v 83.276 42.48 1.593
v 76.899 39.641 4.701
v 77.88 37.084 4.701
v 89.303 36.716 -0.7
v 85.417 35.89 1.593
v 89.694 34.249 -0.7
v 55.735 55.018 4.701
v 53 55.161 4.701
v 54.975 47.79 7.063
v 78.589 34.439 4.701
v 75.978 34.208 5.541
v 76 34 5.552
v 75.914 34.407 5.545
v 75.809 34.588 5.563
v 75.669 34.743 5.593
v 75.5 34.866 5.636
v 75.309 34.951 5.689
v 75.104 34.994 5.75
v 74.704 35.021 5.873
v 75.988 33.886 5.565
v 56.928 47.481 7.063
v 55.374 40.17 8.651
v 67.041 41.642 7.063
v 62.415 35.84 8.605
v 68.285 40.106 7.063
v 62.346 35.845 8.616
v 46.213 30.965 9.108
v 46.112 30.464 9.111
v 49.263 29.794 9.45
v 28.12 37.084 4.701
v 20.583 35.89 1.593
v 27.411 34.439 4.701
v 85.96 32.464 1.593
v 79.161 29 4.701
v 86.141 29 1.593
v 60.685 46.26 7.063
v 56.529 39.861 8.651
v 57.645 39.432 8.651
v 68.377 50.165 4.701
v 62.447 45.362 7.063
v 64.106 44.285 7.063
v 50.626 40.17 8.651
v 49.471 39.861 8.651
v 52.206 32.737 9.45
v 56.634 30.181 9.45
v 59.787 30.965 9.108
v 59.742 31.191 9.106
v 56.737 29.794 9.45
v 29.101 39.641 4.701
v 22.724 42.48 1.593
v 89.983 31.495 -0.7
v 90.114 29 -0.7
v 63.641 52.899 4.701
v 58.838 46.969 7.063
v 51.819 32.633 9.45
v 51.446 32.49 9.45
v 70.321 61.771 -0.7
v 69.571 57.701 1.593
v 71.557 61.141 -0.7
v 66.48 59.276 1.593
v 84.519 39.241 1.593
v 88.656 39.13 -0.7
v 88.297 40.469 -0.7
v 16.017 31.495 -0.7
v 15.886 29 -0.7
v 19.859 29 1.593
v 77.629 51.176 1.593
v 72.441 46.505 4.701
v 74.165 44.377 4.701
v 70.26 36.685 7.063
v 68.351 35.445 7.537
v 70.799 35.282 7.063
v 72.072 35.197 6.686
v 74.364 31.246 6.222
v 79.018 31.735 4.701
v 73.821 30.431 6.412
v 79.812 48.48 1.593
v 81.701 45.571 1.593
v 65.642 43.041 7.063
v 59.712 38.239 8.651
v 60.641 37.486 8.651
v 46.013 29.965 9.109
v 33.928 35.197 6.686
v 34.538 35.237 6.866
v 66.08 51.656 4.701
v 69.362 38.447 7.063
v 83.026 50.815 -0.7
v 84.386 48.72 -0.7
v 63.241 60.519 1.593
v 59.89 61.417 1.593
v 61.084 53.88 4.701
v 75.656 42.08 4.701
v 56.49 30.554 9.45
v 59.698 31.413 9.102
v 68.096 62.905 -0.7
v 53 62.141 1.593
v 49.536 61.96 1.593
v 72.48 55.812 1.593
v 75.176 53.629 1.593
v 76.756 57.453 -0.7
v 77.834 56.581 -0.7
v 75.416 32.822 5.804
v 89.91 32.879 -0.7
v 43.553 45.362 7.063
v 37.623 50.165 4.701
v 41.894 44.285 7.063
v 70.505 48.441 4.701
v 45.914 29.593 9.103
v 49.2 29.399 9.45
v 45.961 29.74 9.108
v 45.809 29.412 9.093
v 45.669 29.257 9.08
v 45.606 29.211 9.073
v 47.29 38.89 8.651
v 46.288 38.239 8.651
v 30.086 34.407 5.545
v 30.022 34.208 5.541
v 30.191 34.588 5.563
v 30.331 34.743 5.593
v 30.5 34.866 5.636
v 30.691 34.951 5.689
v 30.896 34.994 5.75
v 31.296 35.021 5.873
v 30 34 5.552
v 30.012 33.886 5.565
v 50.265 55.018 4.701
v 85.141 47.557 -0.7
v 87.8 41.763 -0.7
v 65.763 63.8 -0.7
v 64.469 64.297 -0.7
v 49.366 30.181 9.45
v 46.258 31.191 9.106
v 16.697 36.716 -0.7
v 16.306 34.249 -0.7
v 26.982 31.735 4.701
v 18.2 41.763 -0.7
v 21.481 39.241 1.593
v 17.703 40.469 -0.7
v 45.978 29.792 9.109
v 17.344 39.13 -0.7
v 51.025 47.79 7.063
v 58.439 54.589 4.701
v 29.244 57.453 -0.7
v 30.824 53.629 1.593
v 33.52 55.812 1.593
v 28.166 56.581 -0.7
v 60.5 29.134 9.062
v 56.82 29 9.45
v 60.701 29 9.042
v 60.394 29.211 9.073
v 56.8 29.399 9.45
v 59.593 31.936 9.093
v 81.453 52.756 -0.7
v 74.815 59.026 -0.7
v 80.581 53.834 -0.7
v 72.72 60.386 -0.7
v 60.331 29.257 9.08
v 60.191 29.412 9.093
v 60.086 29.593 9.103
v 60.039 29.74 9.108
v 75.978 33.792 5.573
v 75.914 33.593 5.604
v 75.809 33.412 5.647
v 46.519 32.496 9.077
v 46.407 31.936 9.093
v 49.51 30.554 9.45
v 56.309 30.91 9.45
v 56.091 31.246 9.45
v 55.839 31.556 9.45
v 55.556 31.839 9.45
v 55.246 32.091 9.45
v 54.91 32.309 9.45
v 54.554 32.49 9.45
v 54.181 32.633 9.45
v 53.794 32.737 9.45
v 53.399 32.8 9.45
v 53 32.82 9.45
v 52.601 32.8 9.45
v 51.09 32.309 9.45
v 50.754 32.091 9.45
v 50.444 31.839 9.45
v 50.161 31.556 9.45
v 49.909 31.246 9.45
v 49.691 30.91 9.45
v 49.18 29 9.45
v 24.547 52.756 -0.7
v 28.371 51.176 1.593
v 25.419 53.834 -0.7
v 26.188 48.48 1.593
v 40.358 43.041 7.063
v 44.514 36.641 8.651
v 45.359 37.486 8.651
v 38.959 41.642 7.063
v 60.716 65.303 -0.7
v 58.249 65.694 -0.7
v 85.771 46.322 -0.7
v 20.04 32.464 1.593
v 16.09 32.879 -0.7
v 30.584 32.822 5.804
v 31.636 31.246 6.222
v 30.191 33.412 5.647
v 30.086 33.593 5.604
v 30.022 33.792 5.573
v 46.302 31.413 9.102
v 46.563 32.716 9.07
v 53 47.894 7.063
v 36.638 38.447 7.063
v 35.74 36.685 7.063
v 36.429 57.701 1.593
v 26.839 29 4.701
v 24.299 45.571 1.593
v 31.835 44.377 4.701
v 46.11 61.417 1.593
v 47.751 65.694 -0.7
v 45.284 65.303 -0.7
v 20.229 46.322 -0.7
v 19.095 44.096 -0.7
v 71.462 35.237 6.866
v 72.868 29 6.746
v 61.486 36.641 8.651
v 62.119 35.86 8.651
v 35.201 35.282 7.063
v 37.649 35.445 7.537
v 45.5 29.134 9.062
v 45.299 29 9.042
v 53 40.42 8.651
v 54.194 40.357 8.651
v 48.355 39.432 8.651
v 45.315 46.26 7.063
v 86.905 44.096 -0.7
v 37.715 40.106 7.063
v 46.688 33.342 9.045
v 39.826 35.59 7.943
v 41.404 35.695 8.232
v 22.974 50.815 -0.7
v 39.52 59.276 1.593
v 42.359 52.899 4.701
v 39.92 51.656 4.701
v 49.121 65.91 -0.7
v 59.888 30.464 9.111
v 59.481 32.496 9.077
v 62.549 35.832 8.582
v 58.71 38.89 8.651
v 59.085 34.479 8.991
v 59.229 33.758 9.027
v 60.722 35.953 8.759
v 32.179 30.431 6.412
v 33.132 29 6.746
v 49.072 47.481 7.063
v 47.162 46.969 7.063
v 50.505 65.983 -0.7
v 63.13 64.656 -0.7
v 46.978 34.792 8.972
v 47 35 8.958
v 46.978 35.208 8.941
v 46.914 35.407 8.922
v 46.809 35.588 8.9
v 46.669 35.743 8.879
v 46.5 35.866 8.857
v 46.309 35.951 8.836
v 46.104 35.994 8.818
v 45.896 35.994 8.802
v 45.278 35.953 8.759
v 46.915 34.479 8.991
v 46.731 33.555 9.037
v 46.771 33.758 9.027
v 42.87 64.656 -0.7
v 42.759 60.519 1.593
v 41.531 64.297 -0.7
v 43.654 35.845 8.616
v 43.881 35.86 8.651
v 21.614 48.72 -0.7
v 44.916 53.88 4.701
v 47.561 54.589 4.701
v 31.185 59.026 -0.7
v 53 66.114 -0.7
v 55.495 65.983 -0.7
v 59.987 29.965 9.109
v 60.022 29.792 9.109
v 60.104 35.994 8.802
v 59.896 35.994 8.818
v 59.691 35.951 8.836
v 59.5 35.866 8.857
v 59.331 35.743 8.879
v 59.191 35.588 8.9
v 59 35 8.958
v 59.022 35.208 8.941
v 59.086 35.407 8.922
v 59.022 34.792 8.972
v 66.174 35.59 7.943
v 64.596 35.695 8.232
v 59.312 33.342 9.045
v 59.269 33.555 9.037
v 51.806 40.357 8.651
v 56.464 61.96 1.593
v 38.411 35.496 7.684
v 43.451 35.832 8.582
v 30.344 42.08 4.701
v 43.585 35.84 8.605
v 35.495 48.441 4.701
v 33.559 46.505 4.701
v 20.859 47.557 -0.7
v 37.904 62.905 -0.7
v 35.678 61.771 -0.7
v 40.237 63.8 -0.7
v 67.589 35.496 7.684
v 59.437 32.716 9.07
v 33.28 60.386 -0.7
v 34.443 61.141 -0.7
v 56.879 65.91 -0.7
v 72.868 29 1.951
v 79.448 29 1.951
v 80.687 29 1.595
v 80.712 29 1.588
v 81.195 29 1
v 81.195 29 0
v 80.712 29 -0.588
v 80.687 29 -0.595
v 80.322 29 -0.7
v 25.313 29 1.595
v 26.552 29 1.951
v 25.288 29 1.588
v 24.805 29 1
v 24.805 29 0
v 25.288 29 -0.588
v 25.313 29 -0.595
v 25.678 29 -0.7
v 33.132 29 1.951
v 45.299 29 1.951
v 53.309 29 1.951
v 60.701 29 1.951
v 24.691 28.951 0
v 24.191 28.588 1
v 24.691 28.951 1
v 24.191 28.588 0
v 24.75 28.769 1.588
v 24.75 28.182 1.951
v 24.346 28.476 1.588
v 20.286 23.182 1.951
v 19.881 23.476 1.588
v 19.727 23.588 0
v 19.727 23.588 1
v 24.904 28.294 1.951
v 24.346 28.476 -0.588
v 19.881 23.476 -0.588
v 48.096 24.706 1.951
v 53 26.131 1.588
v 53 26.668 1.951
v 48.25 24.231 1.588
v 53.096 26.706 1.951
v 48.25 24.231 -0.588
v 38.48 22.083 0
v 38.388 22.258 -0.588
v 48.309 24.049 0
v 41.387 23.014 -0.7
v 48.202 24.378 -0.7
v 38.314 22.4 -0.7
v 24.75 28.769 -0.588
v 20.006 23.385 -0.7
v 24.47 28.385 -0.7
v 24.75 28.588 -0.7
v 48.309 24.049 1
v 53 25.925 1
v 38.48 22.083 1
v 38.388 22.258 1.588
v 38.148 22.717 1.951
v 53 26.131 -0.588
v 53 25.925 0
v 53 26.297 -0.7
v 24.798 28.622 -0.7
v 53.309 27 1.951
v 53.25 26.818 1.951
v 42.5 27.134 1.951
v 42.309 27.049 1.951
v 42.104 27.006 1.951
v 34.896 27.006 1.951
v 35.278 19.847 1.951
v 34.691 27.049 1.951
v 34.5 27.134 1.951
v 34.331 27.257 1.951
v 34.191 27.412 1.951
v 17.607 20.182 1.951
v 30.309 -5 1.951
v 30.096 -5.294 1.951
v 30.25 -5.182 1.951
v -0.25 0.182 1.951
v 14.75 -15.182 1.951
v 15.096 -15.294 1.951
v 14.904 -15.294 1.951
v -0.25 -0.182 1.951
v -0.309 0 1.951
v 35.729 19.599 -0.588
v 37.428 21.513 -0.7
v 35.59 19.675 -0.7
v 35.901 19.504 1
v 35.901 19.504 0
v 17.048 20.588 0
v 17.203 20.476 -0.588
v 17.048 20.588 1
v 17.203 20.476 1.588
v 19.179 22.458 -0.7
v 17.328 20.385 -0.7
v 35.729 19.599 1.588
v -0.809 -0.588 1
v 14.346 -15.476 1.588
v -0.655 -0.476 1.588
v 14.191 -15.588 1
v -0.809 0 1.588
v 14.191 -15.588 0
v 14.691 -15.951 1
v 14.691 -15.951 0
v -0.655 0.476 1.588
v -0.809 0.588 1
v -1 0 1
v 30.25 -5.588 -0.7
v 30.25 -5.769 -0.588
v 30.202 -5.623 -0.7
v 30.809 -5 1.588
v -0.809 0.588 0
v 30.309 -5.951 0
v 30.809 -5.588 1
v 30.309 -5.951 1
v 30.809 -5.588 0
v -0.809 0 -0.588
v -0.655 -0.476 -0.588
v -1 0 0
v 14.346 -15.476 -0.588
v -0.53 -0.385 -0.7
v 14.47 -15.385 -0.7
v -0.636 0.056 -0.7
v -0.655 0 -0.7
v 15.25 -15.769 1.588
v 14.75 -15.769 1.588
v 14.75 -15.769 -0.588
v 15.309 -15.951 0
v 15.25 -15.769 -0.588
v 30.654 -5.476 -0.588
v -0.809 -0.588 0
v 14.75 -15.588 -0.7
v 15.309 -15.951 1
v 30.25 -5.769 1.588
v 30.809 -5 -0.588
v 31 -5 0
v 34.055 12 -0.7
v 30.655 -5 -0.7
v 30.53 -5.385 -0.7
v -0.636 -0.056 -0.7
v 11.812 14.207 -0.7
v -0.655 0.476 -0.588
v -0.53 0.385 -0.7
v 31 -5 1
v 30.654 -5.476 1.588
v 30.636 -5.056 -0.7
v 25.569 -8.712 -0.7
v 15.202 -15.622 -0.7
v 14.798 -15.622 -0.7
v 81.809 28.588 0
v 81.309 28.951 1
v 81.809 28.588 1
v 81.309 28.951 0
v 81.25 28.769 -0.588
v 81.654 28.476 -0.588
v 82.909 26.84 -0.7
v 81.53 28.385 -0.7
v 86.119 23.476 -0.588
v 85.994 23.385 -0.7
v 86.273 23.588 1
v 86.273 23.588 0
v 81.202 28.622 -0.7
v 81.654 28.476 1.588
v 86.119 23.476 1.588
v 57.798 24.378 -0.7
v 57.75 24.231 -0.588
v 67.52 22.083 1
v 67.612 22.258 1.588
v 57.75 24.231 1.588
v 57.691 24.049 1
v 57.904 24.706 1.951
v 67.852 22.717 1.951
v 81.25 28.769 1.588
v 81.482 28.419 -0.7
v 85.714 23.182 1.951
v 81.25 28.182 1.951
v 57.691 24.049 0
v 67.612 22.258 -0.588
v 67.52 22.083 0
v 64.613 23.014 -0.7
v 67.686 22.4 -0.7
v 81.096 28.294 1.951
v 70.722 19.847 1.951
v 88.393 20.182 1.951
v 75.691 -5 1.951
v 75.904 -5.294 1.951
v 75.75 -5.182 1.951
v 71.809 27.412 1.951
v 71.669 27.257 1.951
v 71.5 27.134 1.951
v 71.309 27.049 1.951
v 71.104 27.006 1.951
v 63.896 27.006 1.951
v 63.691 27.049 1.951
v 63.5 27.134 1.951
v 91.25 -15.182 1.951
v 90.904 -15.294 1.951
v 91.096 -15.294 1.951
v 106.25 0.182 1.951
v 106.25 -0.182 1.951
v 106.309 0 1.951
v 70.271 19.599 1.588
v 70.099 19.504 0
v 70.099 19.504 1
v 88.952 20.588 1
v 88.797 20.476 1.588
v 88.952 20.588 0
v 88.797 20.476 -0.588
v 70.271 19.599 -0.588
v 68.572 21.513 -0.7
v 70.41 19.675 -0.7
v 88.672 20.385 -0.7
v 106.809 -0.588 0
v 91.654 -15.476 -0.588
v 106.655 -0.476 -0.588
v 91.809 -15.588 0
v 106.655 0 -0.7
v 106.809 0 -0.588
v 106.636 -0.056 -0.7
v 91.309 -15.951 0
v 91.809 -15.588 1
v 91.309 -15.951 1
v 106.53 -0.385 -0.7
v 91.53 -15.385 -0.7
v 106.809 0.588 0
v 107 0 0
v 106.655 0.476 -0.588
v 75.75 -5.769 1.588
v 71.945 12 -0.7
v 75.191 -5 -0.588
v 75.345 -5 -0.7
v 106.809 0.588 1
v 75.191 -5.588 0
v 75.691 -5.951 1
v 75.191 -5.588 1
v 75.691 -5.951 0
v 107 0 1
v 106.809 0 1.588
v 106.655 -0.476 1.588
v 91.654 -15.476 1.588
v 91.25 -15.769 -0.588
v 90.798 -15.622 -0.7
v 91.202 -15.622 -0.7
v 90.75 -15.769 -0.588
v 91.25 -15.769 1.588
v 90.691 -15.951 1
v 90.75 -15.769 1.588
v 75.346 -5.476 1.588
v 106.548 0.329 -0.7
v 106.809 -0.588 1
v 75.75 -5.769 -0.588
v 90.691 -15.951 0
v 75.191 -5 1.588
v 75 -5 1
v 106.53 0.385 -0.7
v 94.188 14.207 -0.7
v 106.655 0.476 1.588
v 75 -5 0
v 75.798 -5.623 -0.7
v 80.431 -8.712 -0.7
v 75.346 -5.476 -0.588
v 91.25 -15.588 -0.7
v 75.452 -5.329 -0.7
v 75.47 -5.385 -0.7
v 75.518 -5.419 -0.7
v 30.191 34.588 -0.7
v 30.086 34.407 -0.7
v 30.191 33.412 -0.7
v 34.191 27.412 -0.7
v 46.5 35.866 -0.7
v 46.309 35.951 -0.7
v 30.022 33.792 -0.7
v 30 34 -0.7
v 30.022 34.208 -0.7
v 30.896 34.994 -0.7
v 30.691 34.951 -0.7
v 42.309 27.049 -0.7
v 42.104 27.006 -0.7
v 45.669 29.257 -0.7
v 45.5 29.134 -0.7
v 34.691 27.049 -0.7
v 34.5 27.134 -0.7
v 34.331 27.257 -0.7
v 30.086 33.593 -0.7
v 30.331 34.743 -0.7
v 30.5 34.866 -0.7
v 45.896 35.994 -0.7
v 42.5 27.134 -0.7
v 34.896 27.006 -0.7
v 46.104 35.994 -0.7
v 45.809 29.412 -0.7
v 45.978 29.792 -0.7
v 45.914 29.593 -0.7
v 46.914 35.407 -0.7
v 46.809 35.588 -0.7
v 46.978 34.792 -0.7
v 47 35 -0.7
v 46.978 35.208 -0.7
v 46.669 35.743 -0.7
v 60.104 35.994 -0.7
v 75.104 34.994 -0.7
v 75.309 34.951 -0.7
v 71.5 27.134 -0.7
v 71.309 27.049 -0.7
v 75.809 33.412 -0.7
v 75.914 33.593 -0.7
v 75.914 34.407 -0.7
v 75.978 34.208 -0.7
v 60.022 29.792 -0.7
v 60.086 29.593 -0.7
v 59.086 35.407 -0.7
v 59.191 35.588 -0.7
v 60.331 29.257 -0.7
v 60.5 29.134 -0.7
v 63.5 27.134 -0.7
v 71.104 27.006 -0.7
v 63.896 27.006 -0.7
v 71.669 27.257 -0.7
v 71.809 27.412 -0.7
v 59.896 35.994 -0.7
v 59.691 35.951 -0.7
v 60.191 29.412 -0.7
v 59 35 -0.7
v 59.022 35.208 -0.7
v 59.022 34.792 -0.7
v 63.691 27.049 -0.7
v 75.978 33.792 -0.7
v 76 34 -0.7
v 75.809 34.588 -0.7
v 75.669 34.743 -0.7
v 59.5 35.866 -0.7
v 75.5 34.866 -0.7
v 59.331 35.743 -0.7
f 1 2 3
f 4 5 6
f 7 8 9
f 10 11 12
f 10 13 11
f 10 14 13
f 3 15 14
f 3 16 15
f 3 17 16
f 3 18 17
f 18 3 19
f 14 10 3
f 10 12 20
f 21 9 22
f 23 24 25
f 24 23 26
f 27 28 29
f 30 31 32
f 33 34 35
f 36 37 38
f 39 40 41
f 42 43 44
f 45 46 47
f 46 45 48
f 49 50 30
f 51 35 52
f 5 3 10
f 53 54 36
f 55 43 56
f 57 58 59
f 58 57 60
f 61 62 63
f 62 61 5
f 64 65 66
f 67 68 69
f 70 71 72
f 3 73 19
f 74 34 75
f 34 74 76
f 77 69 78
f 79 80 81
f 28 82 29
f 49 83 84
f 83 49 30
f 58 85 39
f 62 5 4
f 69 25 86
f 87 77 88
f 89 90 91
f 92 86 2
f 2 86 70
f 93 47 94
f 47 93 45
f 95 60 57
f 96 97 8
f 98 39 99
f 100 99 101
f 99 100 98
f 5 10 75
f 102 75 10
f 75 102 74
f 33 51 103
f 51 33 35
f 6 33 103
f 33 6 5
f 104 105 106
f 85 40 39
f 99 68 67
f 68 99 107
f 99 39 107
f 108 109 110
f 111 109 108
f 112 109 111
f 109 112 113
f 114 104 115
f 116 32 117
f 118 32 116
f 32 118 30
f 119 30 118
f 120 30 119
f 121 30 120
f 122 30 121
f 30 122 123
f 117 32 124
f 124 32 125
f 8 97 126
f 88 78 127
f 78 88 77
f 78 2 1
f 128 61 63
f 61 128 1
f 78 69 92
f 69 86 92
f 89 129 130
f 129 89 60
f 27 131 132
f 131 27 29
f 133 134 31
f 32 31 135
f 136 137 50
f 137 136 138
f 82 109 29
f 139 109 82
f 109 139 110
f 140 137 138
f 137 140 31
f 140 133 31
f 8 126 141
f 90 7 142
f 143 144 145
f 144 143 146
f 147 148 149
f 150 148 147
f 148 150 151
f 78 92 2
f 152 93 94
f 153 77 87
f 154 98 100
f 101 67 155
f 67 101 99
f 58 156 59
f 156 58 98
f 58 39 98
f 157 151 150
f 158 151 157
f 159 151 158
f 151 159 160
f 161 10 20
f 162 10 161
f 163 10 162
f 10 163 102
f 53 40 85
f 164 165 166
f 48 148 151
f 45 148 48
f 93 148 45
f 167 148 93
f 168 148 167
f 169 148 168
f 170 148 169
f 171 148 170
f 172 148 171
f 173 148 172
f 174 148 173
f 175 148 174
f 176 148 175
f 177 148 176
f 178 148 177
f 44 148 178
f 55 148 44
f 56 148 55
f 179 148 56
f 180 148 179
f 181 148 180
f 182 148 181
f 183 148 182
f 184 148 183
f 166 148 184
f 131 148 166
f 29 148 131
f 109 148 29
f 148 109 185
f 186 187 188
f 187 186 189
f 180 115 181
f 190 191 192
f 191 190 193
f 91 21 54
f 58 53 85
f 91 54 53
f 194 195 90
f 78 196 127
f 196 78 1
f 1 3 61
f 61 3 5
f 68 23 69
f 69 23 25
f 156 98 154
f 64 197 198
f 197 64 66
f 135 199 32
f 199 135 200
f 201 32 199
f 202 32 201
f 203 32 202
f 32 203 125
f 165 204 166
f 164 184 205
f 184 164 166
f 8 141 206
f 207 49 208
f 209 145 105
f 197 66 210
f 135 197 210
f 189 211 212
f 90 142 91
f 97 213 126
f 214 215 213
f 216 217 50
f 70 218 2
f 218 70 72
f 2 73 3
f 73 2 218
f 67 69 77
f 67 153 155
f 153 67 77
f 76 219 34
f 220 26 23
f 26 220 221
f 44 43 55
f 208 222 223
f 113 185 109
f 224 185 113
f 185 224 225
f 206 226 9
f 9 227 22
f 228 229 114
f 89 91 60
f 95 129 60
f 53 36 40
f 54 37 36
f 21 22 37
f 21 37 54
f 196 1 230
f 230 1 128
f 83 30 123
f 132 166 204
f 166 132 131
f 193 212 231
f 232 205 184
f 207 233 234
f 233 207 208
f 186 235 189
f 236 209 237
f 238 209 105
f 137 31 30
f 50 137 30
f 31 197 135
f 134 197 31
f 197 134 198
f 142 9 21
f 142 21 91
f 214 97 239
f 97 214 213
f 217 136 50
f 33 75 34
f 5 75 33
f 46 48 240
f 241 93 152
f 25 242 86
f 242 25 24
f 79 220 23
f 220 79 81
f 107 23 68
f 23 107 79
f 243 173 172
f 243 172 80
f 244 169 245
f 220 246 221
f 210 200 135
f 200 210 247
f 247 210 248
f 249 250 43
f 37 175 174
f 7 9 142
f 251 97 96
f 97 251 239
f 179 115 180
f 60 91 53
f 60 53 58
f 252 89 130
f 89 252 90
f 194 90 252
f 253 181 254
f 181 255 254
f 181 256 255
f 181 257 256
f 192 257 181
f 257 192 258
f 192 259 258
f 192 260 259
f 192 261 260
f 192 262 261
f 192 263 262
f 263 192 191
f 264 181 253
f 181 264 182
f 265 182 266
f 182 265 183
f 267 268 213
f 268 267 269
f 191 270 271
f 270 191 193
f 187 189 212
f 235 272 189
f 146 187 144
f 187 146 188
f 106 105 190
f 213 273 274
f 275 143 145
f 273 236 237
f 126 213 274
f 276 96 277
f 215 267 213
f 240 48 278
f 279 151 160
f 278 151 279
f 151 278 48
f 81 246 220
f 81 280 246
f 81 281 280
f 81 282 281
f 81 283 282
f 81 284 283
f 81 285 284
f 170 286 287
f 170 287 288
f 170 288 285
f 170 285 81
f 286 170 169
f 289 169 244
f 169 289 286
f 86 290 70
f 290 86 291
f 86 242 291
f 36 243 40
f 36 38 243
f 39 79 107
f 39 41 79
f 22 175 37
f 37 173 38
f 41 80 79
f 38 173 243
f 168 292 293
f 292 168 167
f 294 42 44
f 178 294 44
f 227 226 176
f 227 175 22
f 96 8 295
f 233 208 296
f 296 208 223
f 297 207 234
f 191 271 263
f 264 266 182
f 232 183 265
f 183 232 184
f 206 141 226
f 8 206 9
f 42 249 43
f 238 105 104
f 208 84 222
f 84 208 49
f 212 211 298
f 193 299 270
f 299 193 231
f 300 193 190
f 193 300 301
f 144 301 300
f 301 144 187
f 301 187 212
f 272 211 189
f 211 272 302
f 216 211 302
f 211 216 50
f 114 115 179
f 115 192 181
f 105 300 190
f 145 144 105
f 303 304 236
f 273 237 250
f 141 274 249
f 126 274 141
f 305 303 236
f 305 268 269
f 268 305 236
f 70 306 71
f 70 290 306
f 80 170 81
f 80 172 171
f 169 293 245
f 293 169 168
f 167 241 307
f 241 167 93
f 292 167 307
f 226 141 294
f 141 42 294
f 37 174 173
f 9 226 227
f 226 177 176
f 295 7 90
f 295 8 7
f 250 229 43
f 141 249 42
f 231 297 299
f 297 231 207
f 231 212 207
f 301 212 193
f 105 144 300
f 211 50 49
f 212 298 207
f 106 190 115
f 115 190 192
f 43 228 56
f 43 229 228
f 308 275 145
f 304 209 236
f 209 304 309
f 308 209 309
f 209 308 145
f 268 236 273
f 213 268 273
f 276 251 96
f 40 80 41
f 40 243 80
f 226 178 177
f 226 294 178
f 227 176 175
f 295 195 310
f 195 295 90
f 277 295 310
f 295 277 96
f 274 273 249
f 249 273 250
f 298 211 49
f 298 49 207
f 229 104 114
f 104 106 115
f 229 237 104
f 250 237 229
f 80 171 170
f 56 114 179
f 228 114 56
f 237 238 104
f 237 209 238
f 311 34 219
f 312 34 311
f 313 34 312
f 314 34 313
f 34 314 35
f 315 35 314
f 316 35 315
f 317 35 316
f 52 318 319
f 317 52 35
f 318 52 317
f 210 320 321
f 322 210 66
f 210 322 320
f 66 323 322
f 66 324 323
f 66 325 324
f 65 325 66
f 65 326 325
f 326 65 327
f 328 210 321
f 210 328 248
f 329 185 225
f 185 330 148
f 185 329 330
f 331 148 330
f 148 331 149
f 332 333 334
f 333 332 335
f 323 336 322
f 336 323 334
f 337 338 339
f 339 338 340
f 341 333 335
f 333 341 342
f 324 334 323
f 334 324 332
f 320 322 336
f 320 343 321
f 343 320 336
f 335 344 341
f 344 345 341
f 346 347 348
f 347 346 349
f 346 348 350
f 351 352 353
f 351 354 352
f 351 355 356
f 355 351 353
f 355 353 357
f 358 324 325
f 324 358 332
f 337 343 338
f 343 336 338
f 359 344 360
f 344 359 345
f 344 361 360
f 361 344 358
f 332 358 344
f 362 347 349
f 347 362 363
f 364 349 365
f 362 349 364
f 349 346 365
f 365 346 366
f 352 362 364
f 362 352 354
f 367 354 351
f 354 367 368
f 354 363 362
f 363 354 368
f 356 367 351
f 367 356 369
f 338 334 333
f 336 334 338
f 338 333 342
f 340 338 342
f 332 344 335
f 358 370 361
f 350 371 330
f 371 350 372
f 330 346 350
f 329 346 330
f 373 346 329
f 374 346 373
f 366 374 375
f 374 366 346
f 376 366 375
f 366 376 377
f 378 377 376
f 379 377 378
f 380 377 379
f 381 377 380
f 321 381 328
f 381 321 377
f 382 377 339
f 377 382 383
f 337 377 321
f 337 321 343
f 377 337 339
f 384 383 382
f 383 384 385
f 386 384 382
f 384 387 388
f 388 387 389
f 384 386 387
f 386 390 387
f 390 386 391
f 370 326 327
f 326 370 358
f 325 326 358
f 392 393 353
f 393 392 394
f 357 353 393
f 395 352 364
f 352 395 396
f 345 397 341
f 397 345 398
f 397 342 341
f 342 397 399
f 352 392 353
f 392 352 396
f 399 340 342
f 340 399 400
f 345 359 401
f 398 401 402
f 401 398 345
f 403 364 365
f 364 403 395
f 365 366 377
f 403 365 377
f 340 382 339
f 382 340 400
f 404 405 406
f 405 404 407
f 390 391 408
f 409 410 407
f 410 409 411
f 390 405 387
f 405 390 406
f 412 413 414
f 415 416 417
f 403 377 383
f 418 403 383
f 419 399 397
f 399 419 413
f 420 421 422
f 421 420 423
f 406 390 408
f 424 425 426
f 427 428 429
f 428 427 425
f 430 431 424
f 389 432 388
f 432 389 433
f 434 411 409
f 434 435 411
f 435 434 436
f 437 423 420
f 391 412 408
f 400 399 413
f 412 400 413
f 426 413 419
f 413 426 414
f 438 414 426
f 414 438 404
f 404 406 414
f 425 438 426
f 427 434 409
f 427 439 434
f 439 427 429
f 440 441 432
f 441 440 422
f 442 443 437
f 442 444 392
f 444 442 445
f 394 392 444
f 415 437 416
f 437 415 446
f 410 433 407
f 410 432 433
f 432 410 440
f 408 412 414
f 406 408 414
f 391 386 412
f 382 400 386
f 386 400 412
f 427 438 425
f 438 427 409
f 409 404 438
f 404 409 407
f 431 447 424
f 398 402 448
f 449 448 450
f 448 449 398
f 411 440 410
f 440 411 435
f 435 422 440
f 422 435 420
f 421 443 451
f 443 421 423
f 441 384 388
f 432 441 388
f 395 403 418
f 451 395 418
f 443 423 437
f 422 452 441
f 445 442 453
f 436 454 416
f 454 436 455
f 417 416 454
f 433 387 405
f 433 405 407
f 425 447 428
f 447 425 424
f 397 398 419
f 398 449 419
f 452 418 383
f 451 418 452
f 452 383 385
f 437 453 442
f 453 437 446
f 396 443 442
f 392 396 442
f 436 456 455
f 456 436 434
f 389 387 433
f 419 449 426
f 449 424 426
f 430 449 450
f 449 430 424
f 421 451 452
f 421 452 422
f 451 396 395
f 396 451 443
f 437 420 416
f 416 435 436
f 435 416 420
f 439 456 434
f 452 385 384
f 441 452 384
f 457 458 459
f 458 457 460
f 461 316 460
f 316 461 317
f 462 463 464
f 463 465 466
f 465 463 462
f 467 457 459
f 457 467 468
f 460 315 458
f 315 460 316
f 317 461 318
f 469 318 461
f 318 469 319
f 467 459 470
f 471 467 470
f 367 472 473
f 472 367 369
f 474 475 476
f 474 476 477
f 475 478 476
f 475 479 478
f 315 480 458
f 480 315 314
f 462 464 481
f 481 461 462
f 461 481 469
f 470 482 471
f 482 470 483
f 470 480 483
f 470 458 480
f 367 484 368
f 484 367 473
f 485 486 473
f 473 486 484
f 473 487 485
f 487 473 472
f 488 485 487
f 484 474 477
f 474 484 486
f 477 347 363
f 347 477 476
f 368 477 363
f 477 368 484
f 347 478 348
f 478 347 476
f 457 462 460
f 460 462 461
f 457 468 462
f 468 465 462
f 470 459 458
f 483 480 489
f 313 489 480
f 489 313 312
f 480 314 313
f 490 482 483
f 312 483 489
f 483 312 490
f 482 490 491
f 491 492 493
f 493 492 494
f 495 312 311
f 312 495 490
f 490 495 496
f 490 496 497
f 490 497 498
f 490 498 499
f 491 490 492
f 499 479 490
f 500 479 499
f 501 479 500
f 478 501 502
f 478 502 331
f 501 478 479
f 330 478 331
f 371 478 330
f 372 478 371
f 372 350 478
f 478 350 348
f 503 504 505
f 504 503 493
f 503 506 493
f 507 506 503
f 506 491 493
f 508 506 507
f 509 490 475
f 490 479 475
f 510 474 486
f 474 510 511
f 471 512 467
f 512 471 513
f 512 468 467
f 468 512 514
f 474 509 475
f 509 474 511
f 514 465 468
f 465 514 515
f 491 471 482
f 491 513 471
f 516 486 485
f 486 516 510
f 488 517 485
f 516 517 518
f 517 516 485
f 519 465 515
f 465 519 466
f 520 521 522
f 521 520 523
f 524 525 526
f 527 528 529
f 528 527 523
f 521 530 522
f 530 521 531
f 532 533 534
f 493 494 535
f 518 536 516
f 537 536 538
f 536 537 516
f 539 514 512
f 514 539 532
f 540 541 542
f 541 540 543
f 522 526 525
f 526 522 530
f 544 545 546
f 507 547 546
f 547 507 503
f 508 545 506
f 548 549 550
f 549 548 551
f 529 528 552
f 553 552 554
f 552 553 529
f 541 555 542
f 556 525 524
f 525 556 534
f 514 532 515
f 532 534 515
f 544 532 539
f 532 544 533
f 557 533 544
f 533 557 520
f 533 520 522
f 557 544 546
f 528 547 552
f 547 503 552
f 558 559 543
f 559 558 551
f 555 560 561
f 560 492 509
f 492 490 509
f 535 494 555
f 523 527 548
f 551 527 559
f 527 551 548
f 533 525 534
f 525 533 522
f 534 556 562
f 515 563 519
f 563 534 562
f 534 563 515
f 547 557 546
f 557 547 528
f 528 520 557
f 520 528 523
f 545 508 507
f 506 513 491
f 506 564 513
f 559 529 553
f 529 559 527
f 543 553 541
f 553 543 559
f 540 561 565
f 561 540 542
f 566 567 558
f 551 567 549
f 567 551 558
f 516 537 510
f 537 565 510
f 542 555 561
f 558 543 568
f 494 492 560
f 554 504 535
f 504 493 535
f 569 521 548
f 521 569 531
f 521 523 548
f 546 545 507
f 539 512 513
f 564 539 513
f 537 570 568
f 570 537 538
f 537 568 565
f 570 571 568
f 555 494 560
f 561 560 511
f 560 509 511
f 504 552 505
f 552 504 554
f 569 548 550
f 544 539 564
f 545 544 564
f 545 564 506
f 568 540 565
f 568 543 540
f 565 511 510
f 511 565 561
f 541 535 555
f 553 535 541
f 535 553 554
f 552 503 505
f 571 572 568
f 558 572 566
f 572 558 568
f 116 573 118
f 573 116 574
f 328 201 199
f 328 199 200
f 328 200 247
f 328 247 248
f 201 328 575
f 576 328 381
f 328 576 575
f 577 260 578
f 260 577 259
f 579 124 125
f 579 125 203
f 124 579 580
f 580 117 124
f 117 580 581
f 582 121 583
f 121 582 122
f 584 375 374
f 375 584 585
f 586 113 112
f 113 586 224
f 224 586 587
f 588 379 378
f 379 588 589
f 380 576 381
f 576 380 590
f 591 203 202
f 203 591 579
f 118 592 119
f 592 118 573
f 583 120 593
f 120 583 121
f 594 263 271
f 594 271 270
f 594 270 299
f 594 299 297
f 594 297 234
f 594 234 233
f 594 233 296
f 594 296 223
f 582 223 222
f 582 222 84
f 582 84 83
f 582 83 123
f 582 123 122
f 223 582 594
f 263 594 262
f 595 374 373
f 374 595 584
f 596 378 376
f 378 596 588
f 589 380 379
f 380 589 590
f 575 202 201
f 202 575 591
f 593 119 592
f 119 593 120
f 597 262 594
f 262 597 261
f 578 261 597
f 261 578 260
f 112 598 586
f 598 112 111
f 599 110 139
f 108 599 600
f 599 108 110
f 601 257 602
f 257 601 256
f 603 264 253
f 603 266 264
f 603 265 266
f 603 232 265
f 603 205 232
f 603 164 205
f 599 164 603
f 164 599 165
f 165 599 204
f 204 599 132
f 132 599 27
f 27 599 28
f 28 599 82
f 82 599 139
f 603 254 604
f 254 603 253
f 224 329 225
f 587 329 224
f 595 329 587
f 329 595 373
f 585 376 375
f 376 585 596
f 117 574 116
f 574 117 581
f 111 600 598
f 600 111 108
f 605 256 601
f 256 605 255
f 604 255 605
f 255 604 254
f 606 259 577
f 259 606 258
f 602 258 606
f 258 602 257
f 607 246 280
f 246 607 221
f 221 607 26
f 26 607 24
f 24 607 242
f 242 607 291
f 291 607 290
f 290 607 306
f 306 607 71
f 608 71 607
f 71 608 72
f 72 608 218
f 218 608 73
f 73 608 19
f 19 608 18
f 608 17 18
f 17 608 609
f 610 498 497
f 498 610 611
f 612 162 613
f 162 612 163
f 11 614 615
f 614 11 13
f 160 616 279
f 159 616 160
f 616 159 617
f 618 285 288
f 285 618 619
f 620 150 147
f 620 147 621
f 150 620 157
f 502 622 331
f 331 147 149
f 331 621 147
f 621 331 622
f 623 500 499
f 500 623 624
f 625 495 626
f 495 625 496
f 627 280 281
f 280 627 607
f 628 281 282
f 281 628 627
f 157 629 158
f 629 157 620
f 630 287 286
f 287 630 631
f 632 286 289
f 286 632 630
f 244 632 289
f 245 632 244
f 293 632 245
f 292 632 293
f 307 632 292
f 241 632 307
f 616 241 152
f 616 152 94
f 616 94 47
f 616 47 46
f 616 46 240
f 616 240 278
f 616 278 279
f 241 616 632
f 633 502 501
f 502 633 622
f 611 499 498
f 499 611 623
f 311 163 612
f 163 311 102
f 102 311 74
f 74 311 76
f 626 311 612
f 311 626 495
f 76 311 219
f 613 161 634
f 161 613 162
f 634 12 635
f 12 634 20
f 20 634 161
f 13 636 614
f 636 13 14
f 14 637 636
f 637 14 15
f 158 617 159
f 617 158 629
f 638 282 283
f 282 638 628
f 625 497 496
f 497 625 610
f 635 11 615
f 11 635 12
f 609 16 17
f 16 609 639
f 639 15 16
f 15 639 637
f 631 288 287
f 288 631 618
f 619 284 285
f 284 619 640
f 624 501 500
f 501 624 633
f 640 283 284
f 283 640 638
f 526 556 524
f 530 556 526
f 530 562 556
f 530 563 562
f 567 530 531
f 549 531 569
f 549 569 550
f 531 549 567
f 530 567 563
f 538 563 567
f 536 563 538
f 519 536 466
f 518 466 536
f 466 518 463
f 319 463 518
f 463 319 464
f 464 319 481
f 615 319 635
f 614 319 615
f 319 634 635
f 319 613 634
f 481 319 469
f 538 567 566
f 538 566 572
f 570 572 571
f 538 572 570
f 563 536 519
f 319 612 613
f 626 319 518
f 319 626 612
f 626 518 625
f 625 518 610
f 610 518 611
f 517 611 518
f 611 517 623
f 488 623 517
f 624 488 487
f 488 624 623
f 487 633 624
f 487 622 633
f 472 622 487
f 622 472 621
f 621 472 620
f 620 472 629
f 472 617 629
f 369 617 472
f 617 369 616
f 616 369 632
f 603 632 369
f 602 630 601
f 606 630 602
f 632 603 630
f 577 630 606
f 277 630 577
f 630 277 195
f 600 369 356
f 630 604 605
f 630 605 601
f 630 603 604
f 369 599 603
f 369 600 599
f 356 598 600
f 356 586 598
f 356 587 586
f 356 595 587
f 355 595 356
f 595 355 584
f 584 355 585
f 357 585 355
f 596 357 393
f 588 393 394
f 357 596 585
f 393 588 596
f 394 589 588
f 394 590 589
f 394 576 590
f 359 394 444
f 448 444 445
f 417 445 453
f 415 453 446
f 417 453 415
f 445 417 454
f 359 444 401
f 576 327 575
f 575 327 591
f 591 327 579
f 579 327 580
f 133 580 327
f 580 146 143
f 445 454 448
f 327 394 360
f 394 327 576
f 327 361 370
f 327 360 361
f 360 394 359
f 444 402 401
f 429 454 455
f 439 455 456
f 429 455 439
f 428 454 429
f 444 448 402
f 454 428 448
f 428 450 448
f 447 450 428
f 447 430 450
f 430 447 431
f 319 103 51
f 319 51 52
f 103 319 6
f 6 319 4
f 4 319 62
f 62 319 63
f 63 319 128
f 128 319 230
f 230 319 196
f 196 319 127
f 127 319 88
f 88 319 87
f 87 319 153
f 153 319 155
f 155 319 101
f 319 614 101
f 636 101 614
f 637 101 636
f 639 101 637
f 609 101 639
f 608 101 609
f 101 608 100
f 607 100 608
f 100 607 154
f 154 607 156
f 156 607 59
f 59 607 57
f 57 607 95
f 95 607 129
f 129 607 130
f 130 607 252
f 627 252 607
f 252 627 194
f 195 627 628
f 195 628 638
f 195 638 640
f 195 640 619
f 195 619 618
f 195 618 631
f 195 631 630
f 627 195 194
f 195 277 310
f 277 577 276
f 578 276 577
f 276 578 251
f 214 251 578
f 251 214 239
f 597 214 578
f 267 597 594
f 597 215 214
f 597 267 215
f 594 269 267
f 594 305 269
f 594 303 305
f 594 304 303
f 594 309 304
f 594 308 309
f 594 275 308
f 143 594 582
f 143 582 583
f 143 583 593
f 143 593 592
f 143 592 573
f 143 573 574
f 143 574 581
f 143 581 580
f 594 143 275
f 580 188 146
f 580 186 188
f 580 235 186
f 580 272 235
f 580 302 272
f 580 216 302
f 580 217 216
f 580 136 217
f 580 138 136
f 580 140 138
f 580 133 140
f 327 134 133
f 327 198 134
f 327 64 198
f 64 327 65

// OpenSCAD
// file: ../../../shapes/open-cylinder/open-cylinder.scad
// // TODO: Lower this to 50.
module openCylinder(height = 3,
                    outerRadius = 7,
                    innerRadius = 4.5,
                    fn = 100)
{
echo("hi oc");    
    $fn = fn;

    difference()
    {
        cylinder(r=outerRadius,
                 h=height);

        translate([0, 0, -1])
        cylinder(r=innerRadius,
                 h=height+1.01);
    }
}
// file: ../../../mounting-hardware/chain-loop/square/chain-loop.scad
/**
 * This is the square variety of chainloop.
 */
module chainLoop(cutoutAxis = "x",
				 xLength = 19,
				 xPercentage = 0.70,
                 yLength = 12,
                 yPercentage = 0.75,
                 zLength = 10,
                 zPercentage = 0.65)
{
    difference()
    {
        color("green")
        cube([xLength, yLength, zLength]);

        cutout(cutoutAxis,
				xLength,
				xPercentage,
				yLength,
				yPercentage,
				zLength,
				zPercentage);
    }
}

/**
 * This module takes the cubic lengths of the chain loop and calculates the
 * dimensions of the cot out protion based on the percentages given.
 *
 * The percentages are expected to be of type float with 1 being 100%.
 */
module cutout(cutoutAxis = "x",
			  xLength = 5,
			  xPercentage = 0.2,
              yLength,
              yPercentage,
              zLength,
              zPercentage)
{
	if(cutoutAxis == "x")
	{
		zCutoutLength = zLength * zPercentage;
	    zTranslate = (zLength/2.0) - (zCutoutLength / 2.0);

	    yCutoutLength = yLength * yPercentage;
	    yTranslate = (yLength / 2.0) - (yCutoutLength / 2.0);

	    translate([-1, yTranslate, zTranslate])
	    cube([xLength+3, yCutoutLength, zCutoutLength]);
	}
	else if(cutoutAxis == "z")
	{
	    yCutoutLength = yLength * yPercentage;
	    yTranslate = (yLength / 2.0) - (yCutoutLength / 2.0);

		xCoutoutLength = xLength * xPercentage;
		xTranslate = (xLength / 2.0) - (xCoutoutLength / 2.0);

		translate([xTranslate, yTranslate, -1])
	    cube([xCoutoutLength, yCutoutLength, zLength+3]);
	}
}
// file: ../../../basics/rounded-edges/doughnuts/doughnuts.scad
use <../../../mounting-hardware/chain-loop/square/chain-loop.scad>
use <../../../shapes/open-cylinder/open-cylinder.scad>

module rectangularDoughnut(cornerRadius = 4,
                           sides = 31,
                           yLength = 32,
                           zLength = 35)
{
    $fn=sides;

    minkowski()//size, cornerRadius)
    {
        chainLoop(xLength = 10,
                  yLength = yLength,
                  zLength = zLength,
                  zPercentage=0.64);

      	sphere(r=cornerRadius);
    };
}

module roundDoughnut()
{
	minkowski()
	{
		openCylinder(height = 3,
						outerRadius = 7,
						innerRadius = 4.5,
						fn = 20);

		sphere(r=2);//, $fn = 10);
	}
}
// main file
use <../../../basics/rounded-edges/doughnuts/doughnuts.scad>

masakasMask();

module masakasMask()
{
	rightEdge_x = 53;

	topRadius = rightEdge_x + 20;

	difference()
	{
		masakasMask_solid(topRadius, rightEdge_x);

		masakasMask_cutouts(topRadius, rightEdge_x);
	}
}

// support modules follow

module masakasMask_bottom(rightEdge_x)
{
	masakasMask_cheekFlap();

	xTranslate = rightEdge_x * 2;
	zTranslate = 1;

	// the mirrored cheek flap
	translate([xTranslate, 0, zTranslate])
	rotate([0,180,0])
	masakasMask_cheekFlap();

}

module masakasMask_cheekFlap()
{
	minkowski()
	{
		linear_extrude(height=1, scale=[1,1], slices=20, twist=0)
		polygon(points=
		[
			[0,0],[15,-15],[30,-5],

			[35, 20],

			// inner cheek area
			[38, 23],

			// nose bridge
			[48, 25], [53, 27],

			// right edge
			[53, 40],

			// outer cheek
			[25, 28]

		]);

	    sphere(r=1, $fn=10);
	}
}

module masakasMask_cutouts(topRadius, rightEdge_x)
{
	masakasMask_EyeCutouts(rightEdge_x);

	// bottom flattener
	translate([0,0, -1.7])
	cube([400, 400, 2], center= true);
}

module masakasMask_EyeCutouts(rightEdge_x)
{
	xTranslateOffset = 22;

	xTranslate = rightEdge_x - xTranslateOffset;
	yTranslate = 34;

	translate([xTranslate, yTranslate, -15])
	masakasMask_LeftEyeCoutout();

	// right eye mirrored from left
	rightEye_xTranslate = rightEdge_x + xTranslateOffset;
	translate([rightEye_xTranslate, yTranslate, 20])
	rotate([0,180,0])
	masakasMask_LeftEyeCoutout();
}

module masakasMask_LeftEyeCoutout(rightEdge_x)
{
	minkowski()
	{
		linear_extrude(height=50, scale=[1,1], slices=20, twist=0)
		polygon(points=
		[
			// below the first direction is the side, second direction is the orientation on that side

			// top left
			[0,0],

			// left bottom
			[4,-6],

			// bottom right
			[11,-6],

			// diagnal top
			[14, -4],

			// right top
			[15, 1]

		]);

		cylinder(r=1, $fn=30);
	}
}

module masakasMask_solid(topRadius, rightEdge_x)
{
	union()
	{
//		masakasMask_sunEmblem();

		masakasMask_top(radius = topRadius,
						rightEdge_x = rightEdge_x);

		masakasMask_bottom(rightEdge_x = rightEdge_x);
	}
}

module masakasMask_sunEmblem()
{

	roundDoughnut();

}

module masakasMask_top(radius, rightEdge_x)
{
	cube_zLength = 10;

	xTranslate = rightEdge_x;
	yTranslate = 29;
	zTranslate = -radius + cube_zLength - 0.450;

	translate([xTranslate, yTranslate, zTranslate])

	difference()
	{
		sphere(r = radius, $fn = 60);

		// xy plane cutout
		translate([0, 0, -10])
		cube([400, 400, 145], center=true);

		// xz plane cutout
		color("green")
		translate([0, -radius/2.0, -10])
		cube([190, radius, 190], center=true);
	}
}
